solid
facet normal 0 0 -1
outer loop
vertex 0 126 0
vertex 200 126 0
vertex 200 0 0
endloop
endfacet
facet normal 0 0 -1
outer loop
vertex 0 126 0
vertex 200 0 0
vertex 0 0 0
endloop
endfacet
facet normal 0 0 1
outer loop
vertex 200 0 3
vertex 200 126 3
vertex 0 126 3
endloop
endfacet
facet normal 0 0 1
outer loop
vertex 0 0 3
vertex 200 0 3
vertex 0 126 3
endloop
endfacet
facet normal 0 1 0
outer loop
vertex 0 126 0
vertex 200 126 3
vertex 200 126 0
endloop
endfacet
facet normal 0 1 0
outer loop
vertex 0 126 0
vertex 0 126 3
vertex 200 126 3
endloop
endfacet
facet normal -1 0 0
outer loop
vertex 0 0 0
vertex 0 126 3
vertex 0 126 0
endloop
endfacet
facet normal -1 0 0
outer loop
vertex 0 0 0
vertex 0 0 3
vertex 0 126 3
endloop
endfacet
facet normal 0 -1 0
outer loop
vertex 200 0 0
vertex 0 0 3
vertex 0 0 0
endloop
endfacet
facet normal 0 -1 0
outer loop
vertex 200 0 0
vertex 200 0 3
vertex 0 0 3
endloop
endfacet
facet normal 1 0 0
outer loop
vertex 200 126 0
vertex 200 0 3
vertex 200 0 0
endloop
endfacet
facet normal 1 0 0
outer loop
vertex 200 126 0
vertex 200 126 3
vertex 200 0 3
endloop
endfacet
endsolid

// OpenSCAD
linear_extrude(3) difference(){ polygon([[0, 0], [200, 0], [200, 126], [0, 126]]);}
